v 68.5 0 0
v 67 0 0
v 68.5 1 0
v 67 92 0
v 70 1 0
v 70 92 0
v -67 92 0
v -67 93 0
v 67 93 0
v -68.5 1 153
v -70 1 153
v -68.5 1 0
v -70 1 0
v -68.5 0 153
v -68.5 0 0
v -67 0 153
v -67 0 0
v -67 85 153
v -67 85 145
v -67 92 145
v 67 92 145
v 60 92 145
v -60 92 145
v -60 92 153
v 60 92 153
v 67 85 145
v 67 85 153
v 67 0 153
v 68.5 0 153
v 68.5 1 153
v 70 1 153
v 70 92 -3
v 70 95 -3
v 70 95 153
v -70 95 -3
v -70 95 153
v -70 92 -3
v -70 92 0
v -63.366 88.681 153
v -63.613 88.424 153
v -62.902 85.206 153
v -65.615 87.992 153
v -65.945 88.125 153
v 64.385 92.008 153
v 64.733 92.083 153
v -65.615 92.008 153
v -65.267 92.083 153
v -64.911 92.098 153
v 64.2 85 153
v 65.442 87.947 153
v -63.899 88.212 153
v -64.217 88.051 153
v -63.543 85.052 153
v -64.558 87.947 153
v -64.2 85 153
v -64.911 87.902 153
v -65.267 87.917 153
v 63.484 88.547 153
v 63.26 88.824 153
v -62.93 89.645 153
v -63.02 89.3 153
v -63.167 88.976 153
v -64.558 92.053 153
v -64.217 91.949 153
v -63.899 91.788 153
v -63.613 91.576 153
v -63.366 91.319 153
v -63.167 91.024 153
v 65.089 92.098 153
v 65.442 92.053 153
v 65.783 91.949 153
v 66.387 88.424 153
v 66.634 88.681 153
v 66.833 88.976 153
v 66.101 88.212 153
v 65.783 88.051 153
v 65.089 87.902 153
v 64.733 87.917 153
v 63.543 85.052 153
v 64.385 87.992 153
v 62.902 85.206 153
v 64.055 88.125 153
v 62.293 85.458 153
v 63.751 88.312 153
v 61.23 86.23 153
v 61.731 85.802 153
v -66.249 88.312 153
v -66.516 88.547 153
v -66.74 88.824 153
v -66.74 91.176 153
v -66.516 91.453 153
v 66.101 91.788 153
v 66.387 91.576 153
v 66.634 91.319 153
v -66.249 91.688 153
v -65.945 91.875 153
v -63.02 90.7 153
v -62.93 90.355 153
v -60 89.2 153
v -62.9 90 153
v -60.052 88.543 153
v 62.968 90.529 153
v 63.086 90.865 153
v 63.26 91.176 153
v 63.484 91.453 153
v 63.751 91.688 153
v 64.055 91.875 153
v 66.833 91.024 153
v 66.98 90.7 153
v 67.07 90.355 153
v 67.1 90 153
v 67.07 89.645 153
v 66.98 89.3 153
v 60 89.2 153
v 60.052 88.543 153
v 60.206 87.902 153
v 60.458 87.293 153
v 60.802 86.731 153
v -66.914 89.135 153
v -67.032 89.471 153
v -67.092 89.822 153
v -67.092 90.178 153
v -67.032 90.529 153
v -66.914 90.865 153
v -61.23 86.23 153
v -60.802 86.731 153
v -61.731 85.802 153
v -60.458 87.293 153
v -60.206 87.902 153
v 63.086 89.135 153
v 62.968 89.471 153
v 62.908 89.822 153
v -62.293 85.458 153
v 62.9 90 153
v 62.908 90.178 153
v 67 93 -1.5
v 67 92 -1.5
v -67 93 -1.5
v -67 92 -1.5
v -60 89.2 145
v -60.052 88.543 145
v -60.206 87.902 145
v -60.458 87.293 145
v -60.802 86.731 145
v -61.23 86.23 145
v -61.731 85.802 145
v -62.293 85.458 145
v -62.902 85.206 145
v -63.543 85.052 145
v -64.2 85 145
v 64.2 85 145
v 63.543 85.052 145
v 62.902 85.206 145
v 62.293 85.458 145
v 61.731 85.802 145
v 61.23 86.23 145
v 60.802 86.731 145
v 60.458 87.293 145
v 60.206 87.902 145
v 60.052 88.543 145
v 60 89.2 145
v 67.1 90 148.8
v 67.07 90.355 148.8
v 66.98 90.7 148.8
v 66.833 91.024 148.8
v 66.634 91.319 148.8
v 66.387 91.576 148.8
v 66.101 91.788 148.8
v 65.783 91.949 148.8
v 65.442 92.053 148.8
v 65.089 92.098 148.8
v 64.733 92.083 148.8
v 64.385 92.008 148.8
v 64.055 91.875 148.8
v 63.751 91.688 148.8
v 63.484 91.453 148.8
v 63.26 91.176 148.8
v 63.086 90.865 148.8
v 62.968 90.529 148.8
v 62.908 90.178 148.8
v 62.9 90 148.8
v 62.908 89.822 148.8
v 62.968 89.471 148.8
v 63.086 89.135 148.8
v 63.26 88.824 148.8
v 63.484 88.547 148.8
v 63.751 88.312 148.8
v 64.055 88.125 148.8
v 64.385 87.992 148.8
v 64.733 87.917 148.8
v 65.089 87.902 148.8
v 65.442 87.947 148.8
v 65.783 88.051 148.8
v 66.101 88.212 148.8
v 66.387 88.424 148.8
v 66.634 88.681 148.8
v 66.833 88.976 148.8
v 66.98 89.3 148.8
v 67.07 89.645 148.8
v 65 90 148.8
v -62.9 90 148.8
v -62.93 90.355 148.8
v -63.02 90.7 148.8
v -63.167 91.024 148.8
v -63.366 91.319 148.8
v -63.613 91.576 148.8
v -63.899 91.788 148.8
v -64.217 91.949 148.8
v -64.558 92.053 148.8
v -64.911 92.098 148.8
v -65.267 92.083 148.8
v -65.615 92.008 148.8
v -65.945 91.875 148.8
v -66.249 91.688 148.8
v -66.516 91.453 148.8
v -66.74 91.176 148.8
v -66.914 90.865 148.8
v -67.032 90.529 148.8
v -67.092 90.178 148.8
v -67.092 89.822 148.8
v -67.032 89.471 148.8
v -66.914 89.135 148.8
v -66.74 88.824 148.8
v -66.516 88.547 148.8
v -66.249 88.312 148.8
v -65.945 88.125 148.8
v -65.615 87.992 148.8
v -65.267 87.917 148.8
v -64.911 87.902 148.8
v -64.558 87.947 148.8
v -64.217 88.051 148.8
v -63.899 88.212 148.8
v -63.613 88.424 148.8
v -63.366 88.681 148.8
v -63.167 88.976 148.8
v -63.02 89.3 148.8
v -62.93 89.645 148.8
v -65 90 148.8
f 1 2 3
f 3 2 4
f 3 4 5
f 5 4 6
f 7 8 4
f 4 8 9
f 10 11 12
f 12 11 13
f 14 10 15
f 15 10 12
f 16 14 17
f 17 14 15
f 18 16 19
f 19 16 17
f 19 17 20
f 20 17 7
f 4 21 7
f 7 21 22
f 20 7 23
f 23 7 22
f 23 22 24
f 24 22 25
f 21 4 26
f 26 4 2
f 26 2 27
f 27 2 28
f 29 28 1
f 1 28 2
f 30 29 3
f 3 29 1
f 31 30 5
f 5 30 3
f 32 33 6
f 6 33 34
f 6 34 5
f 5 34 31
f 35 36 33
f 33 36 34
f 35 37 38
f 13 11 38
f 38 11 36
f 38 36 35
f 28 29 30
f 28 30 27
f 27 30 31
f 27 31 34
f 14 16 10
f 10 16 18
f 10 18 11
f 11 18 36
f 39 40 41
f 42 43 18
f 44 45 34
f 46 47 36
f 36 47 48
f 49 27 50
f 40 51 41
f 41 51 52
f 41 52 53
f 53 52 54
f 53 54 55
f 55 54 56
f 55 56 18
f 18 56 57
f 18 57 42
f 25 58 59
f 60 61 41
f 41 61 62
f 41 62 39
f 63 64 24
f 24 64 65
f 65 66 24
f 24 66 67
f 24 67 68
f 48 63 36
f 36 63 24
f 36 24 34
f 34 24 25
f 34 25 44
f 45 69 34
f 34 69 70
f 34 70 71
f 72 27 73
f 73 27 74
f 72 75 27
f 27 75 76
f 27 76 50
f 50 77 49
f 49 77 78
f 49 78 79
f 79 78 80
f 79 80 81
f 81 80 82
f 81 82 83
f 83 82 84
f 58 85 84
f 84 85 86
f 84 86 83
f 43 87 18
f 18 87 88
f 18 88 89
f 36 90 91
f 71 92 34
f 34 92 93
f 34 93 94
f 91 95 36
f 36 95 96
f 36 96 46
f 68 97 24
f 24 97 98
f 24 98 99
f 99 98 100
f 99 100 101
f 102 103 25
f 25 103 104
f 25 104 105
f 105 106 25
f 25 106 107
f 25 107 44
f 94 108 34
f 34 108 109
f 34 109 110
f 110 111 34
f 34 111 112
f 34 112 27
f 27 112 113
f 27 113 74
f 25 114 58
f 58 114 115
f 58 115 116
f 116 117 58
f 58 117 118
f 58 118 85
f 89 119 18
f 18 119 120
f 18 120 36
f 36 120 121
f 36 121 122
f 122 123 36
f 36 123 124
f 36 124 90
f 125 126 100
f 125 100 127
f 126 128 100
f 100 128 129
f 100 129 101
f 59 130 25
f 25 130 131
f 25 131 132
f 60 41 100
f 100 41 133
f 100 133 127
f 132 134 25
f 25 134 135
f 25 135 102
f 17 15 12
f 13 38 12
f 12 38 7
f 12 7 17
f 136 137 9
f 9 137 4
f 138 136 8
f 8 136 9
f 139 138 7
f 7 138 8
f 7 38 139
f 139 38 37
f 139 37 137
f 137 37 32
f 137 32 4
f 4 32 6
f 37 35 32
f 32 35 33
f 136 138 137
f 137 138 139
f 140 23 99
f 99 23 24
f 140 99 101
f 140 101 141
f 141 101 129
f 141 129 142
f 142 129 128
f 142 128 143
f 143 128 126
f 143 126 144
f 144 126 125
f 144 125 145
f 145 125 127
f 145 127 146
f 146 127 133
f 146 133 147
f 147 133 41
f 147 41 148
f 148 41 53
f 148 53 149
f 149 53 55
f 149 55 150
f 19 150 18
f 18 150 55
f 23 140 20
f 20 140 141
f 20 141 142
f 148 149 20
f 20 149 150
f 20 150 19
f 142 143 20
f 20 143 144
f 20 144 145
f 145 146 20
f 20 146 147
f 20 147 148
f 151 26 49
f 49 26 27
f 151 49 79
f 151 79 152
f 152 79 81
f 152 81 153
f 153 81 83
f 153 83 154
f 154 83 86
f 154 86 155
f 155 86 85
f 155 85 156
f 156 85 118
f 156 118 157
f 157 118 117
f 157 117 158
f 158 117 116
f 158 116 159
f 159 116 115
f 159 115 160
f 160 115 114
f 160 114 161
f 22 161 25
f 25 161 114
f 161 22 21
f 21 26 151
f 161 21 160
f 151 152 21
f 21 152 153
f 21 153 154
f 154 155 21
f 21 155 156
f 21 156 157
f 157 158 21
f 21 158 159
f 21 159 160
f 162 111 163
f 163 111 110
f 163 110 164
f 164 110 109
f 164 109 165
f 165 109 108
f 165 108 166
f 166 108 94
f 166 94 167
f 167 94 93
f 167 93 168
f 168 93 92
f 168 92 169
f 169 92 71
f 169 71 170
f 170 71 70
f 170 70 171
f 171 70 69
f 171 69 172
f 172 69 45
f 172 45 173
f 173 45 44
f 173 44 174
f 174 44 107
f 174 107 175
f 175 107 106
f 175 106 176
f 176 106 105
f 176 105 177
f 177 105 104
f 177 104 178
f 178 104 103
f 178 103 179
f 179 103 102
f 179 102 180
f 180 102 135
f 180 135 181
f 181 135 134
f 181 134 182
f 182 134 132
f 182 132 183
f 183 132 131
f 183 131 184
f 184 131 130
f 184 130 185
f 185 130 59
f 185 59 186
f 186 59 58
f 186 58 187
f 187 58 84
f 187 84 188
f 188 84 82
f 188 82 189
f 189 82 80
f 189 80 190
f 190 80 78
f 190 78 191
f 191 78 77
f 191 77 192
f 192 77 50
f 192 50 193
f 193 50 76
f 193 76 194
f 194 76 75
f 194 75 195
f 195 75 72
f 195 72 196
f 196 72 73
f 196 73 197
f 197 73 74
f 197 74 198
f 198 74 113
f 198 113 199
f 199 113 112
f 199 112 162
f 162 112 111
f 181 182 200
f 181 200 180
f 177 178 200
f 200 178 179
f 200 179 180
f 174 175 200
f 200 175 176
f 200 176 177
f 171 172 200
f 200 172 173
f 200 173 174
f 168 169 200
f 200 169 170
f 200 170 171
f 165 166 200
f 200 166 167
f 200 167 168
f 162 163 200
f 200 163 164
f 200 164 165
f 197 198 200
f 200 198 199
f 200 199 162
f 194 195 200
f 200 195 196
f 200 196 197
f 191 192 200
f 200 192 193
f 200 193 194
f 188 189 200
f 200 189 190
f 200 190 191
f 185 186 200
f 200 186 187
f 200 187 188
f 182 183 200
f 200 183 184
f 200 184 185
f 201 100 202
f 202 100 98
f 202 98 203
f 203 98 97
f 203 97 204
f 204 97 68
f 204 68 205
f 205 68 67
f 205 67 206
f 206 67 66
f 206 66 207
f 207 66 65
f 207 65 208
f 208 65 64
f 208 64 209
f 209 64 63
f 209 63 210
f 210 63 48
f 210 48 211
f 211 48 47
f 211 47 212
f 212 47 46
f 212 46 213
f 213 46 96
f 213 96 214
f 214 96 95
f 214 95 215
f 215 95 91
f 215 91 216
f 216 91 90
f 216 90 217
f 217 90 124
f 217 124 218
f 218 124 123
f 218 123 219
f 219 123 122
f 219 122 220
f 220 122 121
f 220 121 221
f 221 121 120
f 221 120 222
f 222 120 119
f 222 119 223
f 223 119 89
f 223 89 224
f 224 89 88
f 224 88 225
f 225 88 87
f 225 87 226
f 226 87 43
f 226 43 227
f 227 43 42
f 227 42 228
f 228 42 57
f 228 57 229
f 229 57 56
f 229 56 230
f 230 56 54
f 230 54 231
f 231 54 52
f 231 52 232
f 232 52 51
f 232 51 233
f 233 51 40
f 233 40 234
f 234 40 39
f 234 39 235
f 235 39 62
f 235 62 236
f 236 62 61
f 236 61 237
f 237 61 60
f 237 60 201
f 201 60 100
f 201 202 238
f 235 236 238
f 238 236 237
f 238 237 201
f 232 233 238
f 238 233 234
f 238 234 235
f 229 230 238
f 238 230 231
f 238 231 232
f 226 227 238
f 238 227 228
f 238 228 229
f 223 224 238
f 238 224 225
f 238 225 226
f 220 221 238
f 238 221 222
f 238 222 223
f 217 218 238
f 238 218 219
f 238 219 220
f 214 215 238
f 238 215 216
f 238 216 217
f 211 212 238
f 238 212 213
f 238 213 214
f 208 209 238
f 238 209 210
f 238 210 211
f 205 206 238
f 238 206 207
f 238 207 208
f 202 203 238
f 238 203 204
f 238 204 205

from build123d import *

# Parameters (mm, degrees)
EXTRUDE_1_DEPTH     = 153
EXTRUDE_2_DEPTH     = 1.5
SKETCH_3_W          = 140
SKETCH_3_H          = 3
EXTRUDE_3_DEPTH     = 1.5
EXTRUDE_4_DEPTH     = 8
SKETCH_5_R          = 2.1
CUT_EXTRUDE_1_DEPTH = 4.2


with BuildPart() as part:
    # Эскиз1 → Бобышка-Вытянуть1 (new body)
    with BuildSketch(Plane.XY):
        Polygon((-70, 1), (-70, 95), (70, 95), (70, 1), (68.5, 1), (68.5, 0), (67, 0), (67, 92), (-67, 92), (-67, 0), (-68.5, 0), (-68.5, 1), align=None)
    extrude(amount=EXTRUDE_1_DEPTH)

    # Эскиз2 → Бобышка-Вытянуть2 (add)
    with BuildSketch(Plane(origin=(0, 0, 0), x_dir=(-1, 0, 0), z_dir=(0, 0, -1))):
        Polygon((-70, 92), (-70, 95), (70, 95), (70, 93), (70, 92), (67, 92), (67, 93), (-67, 93), (-67, 92), align=None)
    extrude(amount=EXTRUDE_2_DEPTH)

    # Эскиз3 → Бобышка-Вытянуть3 (add)
    with BuildSketch(Plane(origin=(0, 0, -1.5), x_dir=(-1, 0, 0), z_dir=(0, 0, -1))):
        with Locations((0, 93.5)):
            Rectangle(SKETCH_3_W, SKETCH_3_H)
    extrude(amount=EXTRUDE_3_DEPTH)

    # Эскиз4 → Бобышка-Вытянуть4 (add)
    with BuildSketch(Plane.XY.offset(153)):
        with BuildLine():
            Line((-67, 92), (-60, 92))
            Line((-60, 92), (-60, 89.2))
            ThreePointArc((-60, 89.2), (-61.230151519, 86.230151519), (-64.2, 85))
            Line((-64.2, 85), (-67, 85))
            Line((-67, 85), (-67, 92))
        make_face()
        with BuildLine():
            Line((60, 92), (60, 89.2))
            ThreePointArc((60, 89.2), (61.230151519, 86.230151519), (64.2, 85))
            Line((64.2, 85), (67, 85))
            Line((67, 85), (67, 92))
            Line((67, 92), (60, 92))
        make_face()
    extrude(amount=-EXTRUDE_4_DEPTH)

    # Эскиз5 → Вырез-Вытянуть1 (cut)
    with BuildSketch(Plane.XY.offset(153)):
        with Locations((-65, 90)):
            Circle(SKETCH_5_R)
        with Locations(Location((65, 90, 0), (0, 0, 180))):
            Circle(SKETCH_5_R)
    extrude(amount=-CUT_EXTRUDE_1_DEPTH, mode=Mode.SUBTRACT)


solid = part.part
